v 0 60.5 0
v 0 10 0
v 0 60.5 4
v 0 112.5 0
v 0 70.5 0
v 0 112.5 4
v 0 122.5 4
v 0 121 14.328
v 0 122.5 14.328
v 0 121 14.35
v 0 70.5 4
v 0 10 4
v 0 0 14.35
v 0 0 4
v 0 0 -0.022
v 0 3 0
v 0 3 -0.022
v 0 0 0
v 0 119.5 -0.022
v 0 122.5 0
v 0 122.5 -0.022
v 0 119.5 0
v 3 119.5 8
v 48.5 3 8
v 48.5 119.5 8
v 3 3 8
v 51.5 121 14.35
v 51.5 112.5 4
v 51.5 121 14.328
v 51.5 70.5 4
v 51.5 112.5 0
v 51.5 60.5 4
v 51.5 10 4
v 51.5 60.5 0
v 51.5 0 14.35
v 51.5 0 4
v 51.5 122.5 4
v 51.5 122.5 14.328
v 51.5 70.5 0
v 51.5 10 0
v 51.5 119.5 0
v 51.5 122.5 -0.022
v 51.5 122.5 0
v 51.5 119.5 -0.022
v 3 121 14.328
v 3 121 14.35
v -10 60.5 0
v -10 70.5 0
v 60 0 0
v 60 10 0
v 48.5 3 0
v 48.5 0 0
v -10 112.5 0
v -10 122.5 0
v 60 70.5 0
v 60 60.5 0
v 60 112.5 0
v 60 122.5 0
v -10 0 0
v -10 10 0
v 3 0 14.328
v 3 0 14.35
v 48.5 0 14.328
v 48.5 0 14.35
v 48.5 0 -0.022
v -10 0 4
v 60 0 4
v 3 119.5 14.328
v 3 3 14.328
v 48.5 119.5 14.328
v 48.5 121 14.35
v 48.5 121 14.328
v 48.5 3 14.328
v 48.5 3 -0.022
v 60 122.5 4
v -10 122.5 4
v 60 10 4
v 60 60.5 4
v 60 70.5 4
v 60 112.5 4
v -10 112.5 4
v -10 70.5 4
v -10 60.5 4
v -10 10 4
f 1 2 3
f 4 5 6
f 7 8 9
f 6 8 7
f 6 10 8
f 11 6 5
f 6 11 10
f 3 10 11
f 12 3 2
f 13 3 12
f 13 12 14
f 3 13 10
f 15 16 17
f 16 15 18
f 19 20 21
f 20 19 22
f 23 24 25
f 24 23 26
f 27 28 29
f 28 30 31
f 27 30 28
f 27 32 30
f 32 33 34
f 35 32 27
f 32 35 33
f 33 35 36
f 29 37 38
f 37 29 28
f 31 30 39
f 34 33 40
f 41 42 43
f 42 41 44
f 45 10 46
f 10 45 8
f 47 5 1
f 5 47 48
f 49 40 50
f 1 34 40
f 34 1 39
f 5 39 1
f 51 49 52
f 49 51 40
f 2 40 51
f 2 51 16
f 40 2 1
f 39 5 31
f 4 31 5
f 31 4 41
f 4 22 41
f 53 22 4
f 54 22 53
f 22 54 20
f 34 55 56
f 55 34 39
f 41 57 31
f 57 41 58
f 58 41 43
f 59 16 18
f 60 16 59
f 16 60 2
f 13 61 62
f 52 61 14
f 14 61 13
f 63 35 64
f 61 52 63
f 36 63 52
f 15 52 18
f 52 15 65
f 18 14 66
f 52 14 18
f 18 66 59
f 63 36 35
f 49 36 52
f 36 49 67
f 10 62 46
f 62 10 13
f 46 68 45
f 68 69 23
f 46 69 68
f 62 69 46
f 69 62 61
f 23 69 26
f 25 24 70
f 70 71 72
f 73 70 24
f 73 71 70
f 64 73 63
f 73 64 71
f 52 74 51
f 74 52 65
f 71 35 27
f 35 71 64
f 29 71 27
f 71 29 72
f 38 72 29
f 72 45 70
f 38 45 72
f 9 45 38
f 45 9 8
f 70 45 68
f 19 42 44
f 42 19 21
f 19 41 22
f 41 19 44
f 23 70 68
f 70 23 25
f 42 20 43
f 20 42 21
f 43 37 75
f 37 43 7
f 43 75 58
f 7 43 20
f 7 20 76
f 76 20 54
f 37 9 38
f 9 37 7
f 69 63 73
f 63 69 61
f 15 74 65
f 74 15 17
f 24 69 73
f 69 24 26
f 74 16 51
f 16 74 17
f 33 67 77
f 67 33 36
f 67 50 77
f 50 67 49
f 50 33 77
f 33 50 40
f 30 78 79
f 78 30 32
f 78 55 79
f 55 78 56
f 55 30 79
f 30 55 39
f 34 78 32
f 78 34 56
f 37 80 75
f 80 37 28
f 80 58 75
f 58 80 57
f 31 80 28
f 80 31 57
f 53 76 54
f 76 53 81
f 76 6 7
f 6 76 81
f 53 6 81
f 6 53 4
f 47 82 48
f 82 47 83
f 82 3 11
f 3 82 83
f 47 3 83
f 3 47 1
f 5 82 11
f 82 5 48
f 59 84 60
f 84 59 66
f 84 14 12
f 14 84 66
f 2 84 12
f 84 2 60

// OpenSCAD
cube([51.50,121,8],0);
cube([3,121,14.35],0);
translate([48.5,0,0])  cube([3,121,14.35],0); 
translate([25.75,121,7.1525])cube([51.50,3,14.35],true);
translate([24.25,1.5,7.1525])cube([48.50,3,14.35],true);
translate([50,0,,0])          cube([10,10,4]);
translate([50,60.5,,0])          cube([10,10,4]);
translate([50,112.5,,0])          cube([10,10,4]);
translate([-10,112.5,,0])          cube([10,10,4]);
translate([-10,60.5,,0])          cube([10,10,4]);
translate([-10,0,,0])          cube([10,10,4]);
